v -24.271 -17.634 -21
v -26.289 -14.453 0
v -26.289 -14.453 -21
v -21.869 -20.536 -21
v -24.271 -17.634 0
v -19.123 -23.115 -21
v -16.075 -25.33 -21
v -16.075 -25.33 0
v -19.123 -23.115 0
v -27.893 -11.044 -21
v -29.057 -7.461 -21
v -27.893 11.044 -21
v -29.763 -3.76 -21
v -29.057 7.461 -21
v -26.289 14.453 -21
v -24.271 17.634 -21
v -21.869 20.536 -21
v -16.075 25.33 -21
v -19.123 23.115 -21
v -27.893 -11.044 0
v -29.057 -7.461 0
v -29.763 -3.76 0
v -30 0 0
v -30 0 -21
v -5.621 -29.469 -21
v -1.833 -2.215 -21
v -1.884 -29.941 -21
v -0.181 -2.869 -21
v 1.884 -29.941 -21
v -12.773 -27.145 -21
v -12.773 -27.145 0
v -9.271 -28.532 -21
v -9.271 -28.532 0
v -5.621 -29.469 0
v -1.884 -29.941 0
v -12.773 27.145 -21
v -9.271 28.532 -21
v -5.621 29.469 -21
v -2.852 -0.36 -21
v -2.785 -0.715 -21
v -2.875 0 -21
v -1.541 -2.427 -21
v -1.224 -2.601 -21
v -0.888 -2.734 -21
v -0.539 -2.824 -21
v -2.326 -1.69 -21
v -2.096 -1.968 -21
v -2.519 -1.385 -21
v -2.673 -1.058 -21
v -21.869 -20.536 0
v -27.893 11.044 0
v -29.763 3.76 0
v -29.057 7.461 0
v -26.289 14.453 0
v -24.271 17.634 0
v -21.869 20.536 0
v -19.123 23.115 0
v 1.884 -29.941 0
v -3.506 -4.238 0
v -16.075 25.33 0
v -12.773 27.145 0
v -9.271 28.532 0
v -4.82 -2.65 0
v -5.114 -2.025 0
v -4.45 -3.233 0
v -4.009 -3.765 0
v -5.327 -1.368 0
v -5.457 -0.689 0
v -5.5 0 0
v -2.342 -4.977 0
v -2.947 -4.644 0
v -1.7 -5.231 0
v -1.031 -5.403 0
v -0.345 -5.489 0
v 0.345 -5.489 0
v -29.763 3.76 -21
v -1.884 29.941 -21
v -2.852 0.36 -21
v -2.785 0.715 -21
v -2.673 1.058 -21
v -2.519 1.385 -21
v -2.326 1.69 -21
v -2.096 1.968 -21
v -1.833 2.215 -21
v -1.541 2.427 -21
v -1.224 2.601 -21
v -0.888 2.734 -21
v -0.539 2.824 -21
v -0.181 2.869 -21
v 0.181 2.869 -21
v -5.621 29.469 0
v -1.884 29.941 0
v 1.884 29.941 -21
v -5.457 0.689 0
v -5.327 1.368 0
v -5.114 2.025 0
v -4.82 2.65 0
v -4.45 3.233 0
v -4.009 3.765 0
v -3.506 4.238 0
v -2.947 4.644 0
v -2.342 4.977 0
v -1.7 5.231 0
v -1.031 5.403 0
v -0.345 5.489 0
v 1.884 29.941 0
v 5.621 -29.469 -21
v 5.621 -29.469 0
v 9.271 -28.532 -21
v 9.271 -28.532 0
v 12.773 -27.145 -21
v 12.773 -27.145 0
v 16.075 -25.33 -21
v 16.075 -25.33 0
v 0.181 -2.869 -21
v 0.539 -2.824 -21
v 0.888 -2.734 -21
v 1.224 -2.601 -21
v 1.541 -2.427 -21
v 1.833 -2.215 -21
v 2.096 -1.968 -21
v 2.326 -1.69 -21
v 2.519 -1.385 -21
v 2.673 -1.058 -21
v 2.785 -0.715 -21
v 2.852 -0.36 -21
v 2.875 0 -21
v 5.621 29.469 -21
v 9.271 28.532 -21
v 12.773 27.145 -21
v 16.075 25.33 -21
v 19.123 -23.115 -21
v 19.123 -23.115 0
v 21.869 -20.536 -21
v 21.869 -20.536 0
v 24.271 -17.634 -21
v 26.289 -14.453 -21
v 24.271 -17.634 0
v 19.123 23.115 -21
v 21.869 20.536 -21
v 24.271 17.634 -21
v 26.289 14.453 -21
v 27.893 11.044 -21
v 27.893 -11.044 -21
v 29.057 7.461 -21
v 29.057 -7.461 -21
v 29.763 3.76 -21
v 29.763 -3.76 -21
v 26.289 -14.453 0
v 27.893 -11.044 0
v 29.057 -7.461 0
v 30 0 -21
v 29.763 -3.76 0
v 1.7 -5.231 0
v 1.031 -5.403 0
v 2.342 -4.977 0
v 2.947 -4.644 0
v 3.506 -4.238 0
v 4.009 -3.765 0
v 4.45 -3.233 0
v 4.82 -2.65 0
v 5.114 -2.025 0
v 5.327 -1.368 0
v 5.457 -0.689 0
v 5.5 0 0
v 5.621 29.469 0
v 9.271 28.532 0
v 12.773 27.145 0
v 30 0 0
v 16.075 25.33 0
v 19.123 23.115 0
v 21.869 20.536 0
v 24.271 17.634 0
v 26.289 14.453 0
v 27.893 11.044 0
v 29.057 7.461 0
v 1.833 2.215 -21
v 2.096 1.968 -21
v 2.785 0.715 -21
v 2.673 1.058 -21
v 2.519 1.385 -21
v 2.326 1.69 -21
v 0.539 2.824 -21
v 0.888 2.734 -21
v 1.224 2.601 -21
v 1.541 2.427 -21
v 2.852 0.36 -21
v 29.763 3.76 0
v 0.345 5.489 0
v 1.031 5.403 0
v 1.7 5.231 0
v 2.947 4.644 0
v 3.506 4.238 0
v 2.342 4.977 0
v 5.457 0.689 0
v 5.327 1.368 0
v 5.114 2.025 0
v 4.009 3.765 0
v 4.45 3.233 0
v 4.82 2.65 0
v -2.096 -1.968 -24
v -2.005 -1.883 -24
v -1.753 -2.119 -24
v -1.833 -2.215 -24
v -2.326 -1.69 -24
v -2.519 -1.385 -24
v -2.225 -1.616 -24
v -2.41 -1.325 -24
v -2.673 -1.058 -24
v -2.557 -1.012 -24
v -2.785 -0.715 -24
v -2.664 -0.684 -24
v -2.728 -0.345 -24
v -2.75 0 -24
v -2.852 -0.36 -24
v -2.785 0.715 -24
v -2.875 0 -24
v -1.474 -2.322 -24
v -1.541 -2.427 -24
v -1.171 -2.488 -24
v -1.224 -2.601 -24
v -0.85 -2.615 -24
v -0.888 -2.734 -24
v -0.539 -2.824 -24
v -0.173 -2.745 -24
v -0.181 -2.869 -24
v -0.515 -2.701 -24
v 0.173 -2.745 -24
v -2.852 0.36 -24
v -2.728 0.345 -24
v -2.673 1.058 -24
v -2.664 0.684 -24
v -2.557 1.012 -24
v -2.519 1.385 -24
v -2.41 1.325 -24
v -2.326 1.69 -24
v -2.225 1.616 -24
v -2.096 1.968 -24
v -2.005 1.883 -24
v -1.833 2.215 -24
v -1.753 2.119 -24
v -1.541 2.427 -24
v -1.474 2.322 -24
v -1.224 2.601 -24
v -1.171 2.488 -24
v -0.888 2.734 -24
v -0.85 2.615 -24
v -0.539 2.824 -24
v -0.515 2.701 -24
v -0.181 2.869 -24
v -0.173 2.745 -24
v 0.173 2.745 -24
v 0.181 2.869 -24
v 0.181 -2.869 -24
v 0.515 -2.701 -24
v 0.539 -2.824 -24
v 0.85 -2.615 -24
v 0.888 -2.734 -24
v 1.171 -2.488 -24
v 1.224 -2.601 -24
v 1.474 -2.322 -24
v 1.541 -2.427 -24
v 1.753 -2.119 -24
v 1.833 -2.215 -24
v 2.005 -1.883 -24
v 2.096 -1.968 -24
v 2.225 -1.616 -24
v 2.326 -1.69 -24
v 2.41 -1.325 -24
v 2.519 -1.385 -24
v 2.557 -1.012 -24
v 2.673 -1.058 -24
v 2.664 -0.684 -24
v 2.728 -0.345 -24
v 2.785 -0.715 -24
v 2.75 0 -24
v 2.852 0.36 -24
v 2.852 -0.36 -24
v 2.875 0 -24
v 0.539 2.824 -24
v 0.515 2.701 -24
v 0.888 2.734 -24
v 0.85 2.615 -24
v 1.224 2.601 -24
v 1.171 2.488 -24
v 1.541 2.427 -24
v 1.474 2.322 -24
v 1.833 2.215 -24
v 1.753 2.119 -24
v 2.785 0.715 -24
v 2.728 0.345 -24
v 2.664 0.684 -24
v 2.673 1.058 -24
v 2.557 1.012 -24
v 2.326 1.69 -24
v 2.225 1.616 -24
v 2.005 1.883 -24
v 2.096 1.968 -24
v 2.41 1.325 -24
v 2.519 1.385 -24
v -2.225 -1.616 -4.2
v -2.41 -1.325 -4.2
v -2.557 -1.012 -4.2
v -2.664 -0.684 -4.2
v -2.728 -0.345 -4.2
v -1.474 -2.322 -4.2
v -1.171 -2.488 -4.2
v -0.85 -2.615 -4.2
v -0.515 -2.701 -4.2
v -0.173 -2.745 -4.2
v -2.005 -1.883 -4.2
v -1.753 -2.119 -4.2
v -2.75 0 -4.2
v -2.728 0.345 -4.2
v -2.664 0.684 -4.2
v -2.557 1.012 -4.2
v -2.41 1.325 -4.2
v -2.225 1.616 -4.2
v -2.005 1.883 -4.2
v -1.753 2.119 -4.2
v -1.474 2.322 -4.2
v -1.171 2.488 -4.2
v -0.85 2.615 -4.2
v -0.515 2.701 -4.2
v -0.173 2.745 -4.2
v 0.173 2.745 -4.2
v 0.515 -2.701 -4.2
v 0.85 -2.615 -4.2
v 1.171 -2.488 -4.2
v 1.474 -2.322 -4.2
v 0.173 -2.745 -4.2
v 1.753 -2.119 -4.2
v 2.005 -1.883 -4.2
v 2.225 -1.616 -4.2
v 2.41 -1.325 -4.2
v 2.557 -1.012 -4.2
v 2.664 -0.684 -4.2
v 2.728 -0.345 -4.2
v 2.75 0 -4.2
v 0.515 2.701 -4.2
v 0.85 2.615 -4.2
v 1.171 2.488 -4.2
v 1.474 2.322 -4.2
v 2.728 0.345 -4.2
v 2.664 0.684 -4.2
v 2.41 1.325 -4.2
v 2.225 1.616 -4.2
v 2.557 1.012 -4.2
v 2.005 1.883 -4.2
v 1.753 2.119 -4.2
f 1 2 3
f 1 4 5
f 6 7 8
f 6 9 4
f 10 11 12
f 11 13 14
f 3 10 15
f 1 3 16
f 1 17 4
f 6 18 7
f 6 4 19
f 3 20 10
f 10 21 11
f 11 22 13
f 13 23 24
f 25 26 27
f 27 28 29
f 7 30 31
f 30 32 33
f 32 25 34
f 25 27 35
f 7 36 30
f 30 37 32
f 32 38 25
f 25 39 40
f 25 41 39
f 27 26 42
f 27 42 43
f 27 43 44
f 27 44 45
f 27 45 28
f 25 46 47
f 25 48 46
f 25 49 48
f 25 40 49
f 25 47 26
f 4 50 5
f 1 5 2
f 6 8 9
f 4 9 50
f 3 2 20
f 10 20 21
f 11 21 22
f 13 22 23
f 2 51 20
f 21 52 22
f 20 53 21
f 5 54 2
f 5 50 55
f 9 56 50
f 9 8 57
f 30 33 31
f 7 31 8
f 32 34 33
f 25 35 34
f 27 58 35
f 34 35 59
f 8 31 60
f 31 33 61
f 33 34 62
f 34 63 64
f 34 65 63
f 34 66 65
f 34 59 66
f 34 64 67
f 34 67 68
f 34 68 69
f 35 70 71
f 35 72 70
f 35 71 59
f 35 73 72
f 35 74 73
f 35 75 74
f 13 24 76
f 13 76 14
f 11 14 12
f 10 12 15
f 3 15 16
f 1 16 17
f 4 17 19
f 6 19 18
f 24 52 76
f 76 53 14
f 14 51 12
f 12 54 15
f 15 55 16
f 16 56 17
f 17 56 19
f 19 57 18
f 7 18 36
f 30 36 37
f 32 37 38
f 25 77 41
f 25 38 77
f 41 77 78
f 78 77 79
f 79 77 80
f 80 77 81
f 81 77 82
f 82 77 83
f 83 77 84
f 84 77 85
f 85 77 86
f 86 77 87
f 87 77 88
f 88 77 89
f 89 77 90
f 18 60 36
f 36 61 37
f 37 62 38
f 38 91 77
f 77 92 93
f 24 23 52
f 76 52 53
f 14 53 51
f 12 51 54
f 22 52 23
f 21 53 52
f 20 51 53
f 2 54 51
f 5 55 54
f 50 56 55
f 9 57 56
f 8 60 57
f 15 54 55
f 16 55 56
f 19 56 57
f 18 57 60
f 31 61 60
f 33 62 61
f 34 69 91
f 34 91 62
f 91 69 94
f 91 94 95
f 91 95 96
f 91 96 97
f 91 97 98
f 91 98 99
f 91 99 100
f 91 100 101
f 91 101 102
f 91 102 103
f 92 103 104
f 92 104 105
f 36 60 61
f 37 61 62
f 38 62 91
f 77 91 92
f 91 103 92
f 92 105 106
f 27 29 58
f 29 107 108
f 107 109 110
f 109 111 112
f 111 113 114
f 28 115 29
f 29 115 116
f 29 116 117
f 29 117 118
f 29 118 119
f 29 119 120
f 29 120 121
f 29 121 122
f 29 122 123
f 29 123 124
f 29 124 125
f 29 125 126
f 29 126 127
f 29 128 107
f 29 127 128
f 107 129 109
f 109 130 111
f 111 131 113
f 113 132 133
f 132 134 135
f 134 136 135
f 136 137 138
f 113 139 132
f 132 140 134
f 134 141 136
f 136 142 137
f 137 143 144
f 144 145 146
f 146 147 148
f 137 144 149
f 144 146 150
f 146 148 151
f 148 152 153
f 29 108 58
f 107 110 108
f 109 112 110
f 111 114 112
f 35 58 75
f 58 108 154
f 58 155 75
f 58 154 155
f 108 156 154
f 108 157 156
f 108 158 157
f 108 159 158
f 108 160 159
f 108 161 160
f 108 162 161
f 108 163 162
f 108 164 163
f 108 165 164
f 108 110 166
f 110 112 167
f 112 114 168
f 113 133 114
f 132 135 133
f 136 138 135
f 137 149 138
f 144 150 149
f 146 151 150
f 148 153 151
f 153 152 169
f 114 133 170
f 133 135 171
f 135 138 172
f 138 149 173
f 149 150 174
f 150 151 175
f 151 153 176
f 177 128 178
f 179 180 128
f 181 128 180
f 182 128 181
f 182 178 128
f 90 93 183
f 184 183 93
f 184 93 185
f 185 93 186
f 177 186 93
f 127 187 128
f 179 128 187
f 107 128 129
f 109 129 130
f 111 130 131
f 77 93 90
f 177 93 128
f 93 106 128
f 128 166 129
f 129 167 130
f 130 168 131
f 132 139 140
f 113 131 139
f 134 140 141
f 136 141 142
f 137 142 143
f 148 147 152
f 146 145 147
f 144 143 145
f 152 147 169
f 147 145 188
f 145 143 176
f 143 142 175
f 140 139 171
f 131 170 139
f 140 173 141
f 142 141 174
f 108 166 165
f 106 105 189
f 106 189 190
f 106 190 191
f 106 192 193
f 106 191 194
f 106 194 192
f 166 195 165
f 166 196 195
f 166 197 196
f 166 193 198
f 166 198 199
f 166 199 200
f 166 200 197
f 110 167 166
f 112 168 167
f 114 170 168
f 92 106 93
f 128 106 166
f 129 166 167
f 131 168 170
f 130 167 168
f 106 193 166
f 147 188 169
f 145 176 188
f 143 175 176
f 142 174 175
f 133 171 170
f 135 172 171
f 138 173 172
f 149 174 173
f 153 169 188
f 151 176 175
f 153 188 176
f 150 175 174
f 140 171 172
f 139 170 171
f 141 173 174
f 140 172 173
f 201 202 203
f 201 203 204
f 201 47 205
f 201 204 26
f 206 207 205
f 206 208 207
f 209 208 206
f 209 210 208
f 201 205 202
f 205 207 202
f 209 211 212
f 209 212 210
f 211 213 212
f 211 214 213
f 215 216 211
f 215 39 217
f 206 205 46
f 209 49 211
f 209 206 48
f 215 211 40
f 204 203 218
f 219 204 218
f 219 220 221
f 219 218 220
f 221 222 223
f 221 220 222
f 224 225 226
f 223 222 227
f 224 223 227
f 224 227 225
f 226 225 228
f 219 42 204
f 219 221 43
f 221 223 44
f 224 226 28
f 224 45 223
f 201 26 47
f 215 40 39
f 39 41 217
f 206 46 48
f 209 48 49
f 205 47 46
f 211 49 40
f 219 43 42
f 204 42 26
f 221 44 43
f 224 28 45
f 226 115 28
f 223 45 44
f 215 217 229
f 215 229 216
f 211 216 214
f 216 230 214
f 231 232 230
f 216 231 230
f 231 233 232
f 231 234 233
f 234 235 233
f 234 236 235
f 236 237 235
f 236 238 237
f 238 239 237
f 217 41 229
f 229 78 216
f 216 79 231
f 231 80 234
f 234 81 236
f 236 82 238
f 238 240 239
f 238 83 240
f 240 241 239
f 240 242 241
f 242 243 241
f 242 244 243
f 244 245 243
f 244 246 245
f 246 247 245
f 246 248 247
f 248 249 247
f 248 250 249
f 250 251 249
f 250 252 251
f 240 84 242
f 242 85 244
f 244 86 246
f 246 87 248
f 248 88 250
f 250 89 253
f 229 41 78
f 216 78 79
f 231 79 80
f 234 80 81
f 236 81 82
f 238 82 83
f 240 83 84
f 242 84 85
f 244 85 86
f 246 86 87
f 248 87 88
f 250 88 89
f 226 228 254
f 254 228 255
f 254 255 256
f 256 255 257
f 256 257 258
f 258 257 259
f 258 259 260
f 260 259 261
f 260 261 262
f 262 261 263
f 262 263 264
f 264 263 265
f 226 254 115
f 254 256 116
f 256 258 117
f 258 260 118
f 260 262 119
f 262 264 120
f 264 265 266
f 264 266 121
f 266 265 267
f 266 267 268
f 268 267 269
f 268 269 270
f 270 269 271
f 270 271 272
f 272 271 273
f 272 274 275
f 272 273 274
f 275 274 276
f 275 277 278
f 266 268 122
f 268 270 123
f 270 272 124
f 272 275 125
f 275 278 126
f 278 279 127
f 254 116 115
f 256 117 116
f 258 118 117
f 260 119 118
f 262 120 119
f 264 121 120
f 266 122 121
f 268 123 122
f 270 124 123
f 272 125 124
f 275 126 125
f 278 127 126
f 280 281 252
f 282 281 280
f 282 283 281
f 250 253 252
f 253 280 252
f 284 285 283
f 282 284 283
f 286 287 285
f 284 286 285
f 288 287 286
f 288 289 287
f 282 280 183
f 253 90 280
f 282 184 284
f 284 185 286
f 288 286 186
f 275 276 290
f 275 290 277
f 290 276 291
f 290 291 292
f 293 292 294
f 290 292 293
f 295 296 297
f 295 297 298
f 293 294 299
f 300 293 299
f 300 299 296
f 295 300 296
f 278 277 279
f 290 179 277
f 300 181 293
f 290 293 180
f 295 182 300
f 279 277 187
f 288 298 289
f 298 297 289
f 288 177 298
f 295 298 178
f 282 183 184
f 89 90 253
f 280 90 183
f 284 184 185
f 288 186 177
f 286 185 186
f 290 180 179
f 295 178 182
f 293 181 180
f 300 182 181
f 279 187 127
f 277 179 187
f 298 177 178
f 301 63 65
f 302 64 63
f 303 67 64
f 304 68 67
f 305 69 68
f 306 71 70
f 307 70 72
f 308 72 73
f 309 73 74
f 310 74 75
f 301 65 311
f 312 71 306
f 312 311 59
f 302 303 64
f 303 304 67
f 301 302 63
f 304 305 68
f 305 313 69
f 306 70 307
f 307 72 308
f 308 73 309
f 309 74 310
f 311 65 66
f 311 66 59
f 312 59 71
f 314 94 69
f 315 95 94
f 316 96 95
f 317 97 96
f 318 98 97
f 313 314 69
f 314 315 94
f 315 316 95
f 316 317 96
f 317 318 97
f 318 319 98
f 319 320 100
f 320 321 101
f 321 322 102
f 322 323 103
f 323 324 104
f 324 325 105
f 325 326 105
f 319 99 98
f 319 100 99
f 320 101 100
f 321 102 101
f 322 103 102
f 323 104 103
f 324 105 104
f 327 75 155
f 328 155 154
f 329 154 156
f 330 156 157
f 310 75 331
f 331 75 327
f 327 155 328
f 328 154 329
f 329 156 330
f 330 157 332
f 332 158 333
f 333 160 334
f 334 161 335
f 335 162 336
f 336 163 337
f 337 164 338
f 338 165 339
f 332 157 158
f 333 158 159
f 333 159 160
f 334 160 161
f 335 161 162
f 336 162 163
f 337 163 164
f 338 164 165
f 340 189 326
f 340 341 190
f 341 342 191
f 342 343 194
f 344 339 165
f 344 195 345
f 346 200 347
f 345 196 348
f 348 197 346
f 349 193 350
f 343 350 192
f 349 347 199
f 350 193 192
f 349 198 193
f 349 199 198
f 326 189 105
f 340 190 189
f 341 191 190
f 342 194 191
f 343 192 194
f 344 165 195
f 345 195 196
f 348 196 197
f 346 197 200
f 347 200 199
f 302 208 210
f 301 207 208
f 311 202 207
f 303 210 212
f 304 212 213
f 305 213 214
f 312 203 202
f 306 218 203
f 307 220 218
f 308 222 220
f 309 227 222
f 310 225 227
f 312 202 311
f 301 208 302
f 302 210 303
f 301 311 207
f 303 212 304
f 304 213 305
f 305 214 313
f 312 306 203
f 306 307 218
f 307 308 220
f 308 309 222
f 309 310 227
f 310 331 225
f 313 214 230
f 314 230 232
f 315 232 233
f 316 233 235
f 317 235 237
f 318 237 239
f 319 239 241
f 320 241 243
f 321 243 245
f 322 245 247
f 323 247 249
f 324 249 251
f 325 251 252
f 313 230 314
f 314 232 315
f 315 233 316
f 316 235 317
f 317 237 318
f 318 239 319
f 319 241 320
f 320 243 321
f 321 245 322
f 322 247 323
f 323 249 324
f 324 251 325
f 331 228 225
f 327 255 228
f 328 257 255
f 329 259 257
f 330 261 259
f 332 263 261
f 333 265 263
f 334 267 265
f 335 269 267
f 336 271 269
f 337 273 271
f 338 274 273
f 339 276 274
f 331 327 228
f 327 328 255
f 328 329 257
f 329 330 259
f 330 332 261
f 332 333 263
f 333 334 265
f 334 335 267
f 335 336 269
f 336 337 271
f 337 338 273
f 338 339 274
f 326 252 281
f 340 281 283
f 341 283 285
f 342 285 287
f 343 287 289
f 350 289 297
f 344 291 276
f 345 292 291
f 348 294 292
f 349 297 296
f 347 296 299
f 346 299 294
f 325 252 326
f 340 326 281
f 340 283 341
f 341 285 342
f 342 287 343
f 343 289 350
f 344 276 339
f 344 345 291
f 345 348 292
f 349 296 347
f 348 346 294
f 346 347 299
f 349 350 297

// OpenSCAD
$fn = 50;

difference() {
	union() {
		translate(v = [0, 0, -21.0]) {
			cylinder(h = 21, r = 30.0);
		}
		#translate(v = [0, 0, -24.0]) {
			cylinder(h = 24, r = 2.875);
		}
	}
	union() {
		translate(v = [0, 0, 0]) {
			rotate(a = [0, 0, 0]) {
				difference() {
					union() {
						translate(v = [0, 0, -24.0]) {
							cylinder(h = 24, r = 2.25);
						}
						translate(v = [0, 0, -4.2]) {
							cylinder(h = 4.2, r1 = 2.75, r2 = 5.5);
						}
						translate(v = [0, 0, -24.0]) {
							cylinder(h = 24, r = 2.75);
						}
						translate(v = [0, 0, -24.0]) {
							cylinder(h = 24, r = 2.25);
						}
					}
					union();
				}
			}
		}
	}
}
